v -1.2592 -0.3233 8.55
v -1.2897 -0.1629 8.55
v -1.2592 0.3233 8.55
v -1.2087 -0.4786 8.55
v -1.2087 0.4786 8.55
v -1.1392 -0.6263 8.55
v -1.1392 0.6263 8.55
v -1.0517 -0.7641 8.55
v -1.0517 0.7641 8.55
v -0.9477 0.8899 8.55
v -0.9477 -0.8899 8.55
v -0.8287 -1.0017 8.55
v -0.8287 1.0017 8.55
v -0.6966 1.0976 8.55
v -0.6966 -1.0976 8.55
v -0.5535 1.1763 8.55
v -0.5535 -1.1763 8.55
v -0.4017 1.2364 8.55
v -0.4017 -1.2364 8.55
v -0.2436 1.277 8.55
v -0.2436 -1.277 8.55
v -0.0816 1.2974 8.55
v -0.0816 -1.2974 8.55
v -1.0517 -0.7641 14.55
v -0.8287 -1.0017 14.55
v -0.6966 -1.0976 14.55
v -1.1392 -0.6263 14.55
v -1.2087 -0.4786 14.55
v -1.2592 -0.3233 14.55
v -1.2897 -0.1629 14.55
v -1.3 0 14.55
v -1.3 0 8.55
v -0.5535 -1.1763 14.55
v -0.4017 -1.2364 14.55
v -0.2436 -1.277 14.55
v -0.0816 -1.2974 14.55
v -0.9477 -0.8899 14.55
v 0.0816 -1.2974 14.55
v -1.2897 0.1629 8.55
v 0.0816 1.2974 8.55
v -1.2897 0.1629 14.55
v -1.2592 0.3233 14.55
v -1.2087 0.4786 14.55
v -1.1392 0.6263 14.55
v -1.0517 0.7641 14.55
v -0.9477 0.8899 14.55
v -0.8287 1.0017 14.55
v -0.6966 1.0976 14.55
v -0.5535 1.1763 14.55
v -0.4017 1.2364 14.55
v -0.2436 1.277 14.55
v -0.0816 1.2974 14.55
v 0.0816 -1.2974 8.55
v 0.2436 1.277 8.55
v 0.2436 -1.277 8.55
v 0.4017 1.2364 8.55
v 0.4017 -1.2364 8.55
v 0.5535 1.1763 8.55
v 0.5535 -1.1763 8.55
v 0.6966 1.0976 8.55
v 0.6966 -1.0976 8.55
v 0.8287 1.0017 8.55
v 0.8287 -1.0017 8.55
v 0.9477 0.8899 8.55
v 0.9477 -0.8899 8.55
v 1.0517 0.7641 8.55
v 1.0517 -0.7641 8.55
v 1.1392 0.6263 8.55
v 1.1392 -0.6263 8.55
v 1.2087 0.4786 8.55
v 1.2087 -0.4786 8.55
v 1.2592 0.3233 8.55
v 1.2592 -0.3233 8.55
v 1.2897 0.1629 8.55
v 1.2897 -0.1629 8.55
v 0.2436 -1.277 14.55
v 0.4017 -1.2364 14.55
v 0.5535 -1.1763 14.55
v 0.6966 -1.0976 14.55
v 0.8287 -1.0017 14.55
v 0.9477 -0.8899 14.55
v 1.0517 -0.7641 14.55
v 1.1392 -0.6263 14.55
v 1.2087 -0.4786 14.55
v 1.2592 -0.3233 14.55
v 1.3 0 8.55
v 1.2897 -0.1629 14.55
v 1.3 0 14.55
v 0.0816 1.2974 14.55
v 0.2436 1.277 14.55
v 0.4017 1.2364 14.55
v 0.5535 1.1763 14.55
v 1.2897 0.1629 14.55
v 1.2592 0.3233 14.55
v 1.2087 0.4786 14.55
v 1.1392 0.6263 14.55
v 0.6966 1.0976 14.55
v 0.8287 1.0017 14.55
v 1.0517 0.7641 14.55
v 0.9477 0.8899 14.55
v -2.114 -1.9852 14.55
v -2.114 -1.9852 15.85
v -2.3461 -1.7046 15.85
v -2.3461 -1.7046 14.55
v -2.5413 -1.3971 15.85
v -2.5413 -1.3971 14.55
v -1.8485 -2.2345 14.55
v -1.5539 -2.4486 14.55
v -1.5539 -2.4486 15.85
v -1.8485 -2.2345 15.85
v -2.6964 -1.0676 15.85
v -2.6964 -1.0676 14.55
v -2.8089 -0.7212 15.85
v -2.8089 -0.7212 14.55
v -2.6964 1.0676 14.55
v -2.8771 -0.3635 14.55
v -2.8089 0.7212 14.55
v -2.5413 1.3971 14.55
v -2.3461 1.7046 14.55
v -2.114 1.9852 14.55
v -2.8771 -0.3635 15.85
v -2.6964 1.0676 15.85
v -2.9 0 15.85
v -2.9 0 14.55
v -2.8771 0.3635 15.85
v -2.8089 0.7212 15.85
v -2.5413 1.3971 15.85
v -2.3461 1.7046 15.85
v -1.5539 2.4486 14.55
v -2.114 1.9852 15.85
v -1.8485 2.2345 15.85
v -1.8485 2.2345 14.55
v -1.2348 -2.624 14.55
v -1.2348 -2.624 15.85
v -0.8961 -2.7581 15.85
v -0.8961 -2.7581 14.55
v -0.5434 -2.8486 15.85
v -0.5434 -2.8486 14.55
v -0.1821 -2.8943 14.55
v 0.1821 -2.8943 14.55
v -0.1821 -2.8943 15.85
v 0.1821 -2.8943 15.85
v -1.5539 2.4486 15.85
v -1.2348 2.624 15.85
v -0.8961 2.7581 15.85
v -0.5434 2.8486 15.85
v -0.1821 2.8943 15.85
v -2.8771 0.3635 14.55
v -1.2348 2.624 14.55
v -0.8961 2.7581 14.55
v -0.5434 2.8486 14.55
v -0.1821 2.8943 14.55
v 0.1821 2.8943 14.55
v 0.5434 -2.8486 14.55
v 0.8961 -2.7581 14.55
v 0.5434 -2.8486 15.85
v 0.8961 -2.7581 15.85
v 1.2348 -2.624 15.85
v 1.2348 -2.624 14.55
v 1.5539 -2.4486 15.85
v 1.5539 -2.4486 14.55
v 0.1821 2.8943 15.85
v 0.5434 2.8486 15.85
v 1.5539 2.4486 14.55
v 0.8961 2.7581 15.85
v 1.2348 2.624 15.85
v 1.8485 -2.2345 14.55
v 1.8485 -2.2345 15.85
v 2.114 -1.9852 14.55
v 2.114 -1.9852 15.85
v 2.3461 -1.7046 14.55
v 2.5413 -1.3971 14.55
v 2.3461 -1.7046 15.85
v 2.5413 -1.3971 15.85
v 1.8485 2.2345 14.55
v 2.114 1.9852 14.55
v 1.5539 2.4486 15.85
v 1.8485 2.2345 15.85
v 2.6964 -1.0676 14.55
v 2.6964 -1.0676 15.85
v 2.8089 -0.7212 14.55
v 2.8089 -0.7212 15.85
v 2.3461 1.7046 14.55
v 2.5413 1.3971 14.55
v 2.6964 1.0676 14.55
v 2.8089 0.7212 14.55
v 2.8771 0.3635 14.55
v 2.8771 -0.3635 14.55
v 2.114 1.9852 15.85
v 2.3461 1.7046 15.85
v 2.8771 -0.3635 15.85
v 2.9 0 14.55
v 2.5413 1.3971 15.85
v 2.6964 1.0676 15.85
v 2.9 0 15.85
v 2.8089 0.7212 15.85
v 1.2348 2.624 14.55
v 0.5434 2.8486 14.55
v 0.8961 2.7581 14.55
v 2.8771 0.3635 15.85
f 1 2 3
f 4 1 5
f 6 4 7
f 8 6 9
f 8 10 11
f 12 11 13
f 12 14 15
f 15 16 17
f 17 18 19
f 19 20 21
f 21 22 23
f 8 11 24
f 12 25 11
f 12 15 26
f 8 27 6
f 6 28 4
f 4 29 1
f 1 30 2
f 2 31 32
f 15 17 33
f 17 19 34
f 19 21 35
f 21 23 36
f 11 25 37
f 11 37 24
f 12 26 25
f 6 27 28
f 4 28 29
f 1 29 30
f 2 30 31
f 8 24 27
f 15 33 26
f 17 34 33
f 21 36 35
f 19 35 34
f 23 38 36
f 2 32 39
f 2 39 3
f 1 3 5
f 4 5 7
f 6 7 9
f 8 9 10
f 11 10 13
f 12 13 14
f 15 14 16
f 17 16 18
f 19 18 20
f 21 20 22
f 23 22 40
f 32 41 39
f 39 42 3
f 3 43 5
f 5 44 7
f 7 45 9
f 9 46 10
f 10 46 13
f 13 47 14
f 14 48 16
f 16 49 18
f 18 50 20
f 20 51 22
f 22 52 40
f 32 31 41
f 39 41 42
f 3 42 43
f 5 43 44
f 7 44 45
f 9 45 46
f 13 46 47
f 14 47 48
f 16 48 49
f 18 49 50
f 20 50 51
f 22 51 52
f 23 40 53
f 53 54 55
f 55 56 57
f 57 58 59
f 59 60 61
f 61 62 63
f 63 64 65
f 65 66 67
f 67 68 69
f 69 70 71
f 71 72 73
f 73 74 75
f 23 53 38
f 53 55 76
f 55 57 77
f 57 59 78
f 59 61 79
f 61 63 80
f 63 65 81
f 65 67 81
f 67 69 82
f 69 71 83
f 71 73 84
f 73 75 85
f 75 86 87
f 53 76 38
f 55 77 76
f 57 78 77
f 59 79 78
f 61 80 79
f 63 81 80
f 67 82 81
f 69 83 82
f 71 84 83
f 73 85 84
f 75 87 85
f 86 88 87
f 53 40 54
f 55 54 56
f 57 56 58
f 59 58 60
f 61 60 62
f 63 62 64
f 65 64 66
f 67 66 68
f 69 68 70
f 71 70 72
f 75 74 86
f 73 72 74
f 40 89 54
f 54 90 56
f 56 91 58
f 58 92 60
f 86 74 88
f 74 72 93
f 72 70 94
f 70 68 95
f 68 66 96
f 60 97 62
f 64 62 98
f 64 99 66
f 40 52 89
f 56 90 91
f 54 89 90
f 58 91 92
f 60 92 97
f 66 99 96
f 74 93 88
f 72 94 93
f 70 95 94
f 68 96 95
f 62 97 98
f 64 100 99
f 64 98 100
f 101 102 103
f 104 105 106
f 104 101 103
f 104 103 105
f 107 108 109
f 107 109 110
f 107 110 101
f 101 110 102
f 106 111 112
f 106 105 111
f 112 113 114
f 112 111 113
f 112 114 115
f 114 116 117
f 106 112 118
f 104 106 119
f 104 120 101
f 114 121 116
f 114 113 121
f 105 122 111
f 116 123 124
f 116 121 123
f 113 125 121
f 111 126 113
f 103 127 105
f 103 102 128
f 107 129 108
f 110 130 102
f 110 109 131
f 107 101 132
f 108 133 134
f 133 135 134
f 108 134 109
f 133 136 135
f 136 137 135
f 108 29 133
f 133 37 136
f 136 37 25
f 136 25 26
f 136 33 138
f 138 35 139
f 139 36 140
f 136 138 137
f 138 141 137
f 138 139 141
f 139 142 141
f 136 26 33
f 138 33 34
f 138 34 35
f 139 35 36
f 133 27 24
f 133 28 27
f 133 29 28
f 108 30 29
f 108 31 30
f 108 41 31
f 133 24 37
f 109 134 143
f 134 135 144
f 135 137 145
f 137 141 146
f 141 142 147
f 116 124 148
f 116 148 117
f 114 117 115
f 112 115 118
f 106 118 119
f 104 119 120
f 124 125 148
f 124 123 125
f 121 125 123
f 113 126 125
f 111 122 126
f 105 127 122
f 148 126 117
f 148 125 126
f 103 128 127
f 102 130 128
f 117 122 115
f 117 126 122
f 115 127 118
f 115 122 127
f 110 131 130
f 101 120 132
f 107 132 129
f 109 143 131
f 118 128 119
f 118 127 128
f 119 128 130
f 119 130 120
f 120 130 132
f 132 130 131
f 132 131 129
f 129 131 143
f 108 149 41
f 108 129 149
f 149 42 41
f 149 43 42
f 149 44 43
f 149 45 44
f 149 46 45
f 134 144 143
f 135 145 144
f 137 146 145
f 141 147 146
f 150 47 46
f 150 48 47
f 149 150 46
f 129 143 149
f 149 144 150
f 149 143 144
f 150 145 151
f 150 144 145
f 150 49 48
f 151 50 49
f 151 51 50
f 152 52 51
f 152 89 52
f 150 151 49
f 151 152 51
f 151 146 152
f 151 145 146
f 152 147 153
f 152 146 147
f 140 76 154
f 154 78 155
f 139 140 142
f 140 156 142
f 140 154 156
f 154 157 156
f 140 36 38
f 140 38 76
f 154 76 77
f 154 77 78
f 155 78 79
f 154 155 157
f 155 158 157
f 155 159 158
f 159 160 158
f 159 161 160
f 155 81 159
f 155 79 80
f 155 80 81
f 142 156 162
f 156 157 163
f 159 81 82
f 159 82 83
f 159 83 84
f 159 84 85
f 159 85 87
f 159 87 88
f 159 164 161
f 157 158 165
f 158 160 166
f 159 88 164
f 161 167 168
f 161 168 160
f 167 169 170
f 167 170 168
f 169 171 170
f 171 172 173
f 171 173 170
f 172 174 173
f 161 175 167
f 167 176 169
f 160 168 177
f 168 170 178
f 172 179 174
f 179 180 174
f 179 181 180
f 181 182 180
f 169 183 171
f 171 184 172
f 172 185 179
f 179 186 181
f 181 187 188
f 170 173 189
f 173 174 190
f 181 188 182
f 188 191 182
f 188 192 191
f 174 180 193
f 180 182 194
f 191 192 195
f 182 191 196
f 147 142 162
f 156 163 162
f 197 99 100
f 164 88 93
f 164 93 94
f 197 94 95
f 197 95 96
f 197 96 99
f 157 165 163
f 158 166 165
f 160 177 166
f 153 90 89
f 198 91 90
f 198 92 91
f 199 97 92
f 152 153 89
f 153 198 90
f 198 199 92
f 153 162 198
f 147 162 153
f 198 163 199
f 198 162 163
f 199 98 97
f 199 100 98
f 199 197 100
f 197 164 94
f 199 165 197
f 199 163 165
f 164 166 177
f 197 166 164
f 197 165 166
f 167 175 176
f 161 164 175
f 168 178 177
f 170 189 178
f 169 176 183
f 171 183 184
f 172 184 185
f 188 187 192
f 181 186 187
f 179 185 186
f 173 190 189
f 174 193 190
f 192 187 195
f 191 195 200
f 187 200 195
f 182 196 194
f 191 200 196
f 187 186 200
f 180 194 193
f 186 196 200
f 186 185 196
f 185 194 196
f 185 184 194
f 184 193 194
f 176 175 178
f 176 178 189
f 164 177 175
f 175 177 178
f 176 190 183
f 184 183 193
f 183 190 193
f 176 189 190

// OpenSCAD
$fn = 50;

difference() {
	union() {
		translate(v = [0, 0, 8.55]) {
			cylinder(h = 6, r = 1.3);
		}
		translate(v = [0, 0, 14.55]) {
			cylinder(h = 1.3, r = 2.9);
		}
	}
	union();
}
